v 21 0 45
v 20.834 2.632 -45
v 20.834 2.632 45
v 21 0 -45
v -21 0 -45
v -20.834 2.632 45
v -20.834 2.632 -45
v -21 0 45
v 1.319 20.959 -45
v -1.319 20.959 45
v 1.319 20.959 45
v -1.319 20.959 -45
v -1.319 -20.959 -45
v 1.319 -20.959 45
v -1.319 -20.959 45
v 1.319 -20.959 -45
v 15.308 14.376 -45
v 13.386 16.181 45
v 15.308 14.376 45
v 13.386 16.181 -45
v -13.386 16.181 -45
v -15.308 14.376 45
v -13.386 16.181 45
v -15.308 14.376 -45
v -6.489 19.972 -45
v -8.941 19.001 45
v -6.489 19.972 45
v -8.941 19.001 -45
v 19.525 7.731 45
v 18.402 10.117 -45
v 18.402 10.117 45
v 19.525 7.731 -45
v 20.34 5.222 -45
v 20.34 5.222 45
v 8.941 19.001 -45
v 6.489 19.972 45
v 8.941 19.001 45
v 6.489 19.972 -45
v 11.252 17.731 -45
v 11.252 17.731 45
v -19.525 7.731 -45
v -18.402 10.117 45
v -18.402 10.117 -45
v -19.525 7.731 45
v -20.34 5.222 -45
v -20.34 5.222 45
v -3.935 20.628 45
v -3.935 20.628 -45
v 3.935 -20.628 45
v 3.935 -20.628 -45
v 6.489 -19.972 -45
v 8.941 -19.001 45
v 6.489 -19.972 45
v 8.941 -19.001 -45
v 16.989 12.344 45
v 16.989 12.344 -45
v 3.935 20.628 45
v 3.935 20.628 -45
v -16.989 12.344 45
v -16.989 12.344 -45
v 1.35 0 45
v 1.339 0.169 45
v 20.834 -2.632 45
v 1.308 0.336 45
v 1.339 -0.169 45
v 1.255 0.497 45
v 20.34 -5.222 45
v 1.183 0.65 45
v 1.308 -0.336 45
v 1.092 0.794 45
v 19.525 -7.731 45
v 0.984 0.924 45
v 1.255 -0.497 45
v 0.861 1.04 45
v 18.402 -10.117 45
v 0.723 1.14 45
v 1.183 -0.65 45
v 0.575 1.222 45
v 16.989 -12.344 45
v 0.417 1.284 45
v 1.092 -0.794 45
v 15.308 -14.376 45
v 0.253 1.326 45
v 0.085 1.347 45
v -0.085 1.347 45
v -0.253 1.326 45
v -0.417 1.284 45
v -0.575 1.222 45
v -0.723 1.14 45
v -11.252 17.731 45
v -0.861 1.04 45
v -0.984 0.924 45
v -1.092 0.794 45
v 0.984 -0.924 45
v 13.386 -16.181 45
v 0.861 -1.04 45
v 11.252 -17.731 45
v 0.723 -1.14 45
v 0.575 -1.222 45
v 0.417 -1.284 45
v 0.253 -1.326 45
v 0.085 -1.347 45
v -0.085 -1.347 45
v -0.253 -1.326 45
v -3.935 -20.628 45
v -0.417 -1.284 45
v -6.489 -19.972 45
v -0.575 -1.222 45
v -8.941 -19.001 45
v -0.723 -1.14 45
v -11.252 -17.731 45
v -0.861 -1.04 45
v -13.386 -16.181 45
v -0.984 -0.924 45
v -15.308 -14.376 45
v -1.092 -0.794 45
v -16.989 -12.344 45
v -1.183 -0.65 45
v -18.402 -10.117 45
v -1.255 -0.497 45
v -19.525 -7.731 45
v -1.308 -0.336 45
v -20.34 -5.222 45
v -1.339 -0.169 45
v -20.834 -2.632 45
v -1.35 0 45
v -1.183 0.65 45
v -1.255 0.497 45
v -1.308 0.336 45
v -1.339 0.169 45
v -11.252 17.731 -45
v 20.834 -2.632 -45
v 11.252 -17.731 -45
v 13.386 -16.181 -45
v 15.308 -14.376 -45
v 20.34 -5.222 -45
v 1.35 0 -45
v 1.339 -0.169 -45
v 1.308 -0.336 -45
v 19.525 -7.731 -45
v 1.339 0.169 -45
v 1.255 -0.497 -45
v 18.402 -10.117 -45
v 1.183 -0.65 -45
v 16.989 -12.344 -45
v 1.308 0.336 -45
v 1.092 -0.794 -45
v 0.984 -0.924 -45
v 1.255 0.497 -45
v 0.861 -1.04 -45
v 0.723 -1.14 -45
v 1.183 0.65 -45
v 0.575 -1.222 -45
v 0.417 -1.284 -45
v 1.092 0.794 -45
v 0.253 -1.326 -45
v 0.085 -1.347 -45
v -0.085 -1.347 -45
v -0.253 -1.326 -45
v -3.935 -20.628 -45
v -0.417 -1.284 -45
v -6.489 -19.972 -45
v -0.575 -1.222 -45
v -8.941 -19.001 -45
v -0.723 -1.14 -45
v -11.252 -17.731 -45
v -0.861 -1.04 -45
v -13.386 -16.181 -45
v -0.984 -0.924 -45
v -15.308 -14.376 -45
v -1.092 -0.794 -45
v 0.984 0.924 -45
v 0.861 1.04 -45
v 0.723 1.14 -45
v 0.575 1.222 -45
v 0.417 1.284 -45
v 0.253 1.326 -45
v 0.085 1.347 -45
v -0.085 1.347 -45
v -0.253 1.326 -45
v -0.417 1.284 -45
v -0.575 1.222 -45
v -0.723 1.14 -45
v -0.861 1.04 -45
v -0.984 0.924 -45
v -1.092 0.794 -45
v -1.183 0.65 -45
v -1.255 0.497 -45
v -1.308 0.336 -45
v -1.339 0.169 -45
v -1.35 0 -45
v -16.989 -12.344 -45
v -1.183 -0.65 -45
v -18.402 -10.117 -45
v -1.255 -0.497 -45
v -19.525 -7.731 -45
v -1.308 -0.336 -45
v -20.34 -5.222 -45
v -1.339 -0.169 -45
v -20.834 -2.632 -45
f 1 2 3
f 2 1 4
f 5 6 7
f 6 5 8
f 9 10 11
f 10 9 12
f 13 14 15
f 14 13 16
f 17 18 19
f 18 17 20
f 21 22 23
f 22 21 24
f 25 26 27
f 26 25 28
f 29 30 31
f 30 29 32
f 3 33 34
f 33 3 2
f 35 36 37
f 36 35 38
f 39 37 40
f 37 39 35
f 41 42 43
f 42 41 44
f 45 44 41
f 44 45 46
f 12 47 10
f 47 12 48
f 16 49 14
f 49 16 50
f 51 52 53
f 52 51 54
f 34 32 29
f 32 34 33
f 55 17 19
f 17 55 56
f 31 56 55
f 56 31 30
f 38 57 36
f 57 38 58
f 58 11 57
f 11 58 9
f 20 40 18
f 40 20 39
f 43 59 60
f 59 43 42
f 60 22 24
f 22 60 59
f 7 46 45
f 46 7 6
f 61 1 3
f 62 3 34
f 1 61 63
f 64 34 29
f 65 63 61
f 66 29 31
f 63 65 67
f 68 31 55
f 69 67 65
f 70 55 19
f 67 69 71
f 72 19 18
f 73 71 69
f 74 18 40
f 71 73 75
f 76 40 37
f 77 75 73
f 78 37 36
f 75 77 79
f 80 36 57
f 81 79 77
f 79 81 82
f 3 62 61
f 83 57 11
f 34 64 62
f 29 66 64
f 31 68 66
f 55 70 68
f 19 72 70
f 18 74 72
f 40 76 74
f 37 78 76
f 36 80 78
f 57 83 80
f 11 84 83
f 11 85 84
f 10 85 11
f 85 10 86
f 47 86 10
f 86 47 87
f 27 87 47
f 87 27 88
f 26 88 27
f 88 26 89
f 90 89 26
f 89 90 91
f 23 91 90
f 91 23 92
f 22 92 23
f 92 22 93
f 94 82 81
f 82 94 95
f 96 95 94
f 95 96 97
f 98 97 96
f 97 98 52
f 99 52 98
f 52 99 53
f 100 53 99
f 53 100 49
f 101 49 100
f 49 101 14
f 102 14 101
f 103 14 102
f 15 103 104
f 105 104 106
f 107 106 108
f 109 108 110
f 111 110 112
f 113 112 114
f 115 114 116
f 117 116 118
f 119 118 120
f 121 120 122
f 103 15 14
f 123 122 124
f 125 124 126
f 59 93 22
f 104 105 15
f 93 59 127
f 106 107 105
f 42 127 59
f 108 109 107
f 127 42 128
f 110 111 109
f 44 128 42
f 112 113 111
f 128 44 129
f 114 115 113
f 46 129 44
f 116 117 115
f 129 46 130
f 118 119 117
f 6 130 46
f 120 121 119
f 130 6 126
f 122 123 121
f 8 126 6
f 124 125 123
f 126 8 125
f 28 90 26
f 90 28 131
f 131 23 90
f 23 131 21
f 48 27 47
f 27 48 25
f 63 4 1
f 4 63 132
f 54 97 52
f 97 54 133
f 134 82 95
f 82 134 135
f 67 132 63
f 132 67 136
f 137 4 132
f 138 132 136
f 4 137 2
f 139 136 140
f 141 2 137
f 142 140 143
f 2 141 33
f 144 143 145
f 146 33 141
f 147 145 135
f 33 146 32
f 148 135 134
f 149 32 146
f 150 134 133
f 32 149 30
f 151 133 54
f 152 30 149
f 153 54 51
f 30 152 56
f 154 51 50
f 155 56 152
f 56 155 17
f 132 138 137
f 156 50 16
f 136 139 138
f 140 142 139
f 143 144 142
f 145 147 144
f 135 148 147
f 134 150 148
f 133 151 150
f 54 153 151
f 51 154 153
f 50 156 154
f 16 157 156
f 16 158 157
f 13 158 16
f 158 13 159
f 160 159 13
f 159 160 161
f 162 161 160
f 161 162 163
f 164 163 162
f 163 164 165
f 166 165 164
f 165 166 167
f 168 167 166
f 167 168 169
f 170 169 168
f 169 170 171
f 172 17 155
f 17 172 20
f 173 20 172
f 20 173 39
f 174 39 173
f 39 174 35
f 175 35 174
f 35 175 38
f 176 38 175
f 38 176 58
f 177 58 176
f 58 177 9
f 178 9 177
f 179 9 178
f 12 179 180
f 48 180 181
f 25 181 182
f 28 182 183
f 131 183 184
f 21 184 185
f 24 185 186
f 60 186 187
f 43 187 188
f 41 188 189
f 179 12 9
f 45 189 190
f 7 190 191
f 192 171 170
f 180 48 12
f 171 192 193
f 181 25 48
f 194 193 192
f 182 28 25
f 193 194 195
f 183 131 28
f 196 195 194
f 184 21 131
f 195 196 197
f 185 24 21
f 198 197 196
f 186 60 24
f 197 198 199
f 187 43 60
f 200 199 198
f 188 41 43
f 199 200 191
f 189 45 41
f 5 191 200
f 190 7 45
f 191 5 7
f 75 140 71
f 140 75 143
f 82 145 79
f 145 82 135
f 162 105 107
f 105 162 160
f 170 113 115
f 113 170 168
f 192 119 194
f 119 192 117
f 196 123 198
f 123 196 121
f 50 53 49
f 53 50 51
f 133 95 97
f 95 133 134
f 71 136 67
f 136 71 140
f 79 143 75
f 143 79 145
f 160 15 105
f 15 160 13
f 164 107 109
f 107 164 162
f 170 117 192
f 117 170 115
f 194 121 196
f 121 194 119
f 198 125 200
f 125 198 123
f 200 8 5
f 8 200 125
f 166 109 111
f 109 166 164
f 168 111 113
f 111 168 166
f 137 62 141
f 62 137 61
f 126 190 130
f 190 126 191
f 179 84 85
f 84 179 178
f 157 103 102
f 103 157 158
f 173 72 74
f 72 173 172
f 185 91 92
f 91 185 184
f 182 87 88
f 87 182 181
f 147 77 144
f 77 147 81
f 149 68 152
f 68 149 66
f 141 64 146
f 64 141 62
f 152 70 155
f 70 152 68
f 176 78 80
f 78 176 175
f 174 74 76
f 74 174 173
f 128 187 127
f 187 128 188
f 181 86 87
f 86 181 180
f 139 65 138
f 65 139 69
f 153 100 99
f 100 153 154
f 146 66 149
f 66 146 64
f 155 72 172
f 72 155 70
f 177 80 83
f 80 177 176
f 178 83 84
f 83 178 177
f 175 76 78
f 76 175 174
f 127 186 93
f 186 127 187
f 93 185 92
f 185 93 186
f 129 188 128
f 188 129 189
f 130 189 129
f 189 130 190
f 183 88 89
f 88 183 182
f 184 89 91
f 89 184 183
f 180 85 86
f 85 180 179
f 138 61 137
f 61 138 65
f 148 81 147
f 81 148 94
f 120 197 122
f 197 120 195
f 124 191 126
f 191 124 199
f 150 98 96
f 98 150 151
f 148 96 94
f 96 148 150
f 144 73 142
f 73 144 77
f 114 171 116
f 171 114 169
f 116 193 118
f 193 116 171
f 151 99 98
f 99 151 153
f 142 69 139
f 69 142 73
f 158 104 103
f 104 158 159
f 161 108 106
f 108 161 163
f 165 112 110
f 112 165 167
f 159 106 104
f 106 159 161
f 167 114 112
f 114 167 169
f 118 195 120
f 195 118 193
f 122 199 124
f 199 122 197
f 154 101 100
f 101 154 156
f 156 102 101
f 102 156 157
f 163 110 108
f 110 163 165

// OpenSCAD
$fn = 50;


difference() {
	union() {
		translate(v = [0, 0, -45.0000000000]) {
			cylinder(h = 90, r = 21.0000000000);
		}
	}
	union() {
		translate(v = [0, 0, -100.0000000000]) {
			cylinder(h = 200, r = 1.3500000000);
		}
	}
}
